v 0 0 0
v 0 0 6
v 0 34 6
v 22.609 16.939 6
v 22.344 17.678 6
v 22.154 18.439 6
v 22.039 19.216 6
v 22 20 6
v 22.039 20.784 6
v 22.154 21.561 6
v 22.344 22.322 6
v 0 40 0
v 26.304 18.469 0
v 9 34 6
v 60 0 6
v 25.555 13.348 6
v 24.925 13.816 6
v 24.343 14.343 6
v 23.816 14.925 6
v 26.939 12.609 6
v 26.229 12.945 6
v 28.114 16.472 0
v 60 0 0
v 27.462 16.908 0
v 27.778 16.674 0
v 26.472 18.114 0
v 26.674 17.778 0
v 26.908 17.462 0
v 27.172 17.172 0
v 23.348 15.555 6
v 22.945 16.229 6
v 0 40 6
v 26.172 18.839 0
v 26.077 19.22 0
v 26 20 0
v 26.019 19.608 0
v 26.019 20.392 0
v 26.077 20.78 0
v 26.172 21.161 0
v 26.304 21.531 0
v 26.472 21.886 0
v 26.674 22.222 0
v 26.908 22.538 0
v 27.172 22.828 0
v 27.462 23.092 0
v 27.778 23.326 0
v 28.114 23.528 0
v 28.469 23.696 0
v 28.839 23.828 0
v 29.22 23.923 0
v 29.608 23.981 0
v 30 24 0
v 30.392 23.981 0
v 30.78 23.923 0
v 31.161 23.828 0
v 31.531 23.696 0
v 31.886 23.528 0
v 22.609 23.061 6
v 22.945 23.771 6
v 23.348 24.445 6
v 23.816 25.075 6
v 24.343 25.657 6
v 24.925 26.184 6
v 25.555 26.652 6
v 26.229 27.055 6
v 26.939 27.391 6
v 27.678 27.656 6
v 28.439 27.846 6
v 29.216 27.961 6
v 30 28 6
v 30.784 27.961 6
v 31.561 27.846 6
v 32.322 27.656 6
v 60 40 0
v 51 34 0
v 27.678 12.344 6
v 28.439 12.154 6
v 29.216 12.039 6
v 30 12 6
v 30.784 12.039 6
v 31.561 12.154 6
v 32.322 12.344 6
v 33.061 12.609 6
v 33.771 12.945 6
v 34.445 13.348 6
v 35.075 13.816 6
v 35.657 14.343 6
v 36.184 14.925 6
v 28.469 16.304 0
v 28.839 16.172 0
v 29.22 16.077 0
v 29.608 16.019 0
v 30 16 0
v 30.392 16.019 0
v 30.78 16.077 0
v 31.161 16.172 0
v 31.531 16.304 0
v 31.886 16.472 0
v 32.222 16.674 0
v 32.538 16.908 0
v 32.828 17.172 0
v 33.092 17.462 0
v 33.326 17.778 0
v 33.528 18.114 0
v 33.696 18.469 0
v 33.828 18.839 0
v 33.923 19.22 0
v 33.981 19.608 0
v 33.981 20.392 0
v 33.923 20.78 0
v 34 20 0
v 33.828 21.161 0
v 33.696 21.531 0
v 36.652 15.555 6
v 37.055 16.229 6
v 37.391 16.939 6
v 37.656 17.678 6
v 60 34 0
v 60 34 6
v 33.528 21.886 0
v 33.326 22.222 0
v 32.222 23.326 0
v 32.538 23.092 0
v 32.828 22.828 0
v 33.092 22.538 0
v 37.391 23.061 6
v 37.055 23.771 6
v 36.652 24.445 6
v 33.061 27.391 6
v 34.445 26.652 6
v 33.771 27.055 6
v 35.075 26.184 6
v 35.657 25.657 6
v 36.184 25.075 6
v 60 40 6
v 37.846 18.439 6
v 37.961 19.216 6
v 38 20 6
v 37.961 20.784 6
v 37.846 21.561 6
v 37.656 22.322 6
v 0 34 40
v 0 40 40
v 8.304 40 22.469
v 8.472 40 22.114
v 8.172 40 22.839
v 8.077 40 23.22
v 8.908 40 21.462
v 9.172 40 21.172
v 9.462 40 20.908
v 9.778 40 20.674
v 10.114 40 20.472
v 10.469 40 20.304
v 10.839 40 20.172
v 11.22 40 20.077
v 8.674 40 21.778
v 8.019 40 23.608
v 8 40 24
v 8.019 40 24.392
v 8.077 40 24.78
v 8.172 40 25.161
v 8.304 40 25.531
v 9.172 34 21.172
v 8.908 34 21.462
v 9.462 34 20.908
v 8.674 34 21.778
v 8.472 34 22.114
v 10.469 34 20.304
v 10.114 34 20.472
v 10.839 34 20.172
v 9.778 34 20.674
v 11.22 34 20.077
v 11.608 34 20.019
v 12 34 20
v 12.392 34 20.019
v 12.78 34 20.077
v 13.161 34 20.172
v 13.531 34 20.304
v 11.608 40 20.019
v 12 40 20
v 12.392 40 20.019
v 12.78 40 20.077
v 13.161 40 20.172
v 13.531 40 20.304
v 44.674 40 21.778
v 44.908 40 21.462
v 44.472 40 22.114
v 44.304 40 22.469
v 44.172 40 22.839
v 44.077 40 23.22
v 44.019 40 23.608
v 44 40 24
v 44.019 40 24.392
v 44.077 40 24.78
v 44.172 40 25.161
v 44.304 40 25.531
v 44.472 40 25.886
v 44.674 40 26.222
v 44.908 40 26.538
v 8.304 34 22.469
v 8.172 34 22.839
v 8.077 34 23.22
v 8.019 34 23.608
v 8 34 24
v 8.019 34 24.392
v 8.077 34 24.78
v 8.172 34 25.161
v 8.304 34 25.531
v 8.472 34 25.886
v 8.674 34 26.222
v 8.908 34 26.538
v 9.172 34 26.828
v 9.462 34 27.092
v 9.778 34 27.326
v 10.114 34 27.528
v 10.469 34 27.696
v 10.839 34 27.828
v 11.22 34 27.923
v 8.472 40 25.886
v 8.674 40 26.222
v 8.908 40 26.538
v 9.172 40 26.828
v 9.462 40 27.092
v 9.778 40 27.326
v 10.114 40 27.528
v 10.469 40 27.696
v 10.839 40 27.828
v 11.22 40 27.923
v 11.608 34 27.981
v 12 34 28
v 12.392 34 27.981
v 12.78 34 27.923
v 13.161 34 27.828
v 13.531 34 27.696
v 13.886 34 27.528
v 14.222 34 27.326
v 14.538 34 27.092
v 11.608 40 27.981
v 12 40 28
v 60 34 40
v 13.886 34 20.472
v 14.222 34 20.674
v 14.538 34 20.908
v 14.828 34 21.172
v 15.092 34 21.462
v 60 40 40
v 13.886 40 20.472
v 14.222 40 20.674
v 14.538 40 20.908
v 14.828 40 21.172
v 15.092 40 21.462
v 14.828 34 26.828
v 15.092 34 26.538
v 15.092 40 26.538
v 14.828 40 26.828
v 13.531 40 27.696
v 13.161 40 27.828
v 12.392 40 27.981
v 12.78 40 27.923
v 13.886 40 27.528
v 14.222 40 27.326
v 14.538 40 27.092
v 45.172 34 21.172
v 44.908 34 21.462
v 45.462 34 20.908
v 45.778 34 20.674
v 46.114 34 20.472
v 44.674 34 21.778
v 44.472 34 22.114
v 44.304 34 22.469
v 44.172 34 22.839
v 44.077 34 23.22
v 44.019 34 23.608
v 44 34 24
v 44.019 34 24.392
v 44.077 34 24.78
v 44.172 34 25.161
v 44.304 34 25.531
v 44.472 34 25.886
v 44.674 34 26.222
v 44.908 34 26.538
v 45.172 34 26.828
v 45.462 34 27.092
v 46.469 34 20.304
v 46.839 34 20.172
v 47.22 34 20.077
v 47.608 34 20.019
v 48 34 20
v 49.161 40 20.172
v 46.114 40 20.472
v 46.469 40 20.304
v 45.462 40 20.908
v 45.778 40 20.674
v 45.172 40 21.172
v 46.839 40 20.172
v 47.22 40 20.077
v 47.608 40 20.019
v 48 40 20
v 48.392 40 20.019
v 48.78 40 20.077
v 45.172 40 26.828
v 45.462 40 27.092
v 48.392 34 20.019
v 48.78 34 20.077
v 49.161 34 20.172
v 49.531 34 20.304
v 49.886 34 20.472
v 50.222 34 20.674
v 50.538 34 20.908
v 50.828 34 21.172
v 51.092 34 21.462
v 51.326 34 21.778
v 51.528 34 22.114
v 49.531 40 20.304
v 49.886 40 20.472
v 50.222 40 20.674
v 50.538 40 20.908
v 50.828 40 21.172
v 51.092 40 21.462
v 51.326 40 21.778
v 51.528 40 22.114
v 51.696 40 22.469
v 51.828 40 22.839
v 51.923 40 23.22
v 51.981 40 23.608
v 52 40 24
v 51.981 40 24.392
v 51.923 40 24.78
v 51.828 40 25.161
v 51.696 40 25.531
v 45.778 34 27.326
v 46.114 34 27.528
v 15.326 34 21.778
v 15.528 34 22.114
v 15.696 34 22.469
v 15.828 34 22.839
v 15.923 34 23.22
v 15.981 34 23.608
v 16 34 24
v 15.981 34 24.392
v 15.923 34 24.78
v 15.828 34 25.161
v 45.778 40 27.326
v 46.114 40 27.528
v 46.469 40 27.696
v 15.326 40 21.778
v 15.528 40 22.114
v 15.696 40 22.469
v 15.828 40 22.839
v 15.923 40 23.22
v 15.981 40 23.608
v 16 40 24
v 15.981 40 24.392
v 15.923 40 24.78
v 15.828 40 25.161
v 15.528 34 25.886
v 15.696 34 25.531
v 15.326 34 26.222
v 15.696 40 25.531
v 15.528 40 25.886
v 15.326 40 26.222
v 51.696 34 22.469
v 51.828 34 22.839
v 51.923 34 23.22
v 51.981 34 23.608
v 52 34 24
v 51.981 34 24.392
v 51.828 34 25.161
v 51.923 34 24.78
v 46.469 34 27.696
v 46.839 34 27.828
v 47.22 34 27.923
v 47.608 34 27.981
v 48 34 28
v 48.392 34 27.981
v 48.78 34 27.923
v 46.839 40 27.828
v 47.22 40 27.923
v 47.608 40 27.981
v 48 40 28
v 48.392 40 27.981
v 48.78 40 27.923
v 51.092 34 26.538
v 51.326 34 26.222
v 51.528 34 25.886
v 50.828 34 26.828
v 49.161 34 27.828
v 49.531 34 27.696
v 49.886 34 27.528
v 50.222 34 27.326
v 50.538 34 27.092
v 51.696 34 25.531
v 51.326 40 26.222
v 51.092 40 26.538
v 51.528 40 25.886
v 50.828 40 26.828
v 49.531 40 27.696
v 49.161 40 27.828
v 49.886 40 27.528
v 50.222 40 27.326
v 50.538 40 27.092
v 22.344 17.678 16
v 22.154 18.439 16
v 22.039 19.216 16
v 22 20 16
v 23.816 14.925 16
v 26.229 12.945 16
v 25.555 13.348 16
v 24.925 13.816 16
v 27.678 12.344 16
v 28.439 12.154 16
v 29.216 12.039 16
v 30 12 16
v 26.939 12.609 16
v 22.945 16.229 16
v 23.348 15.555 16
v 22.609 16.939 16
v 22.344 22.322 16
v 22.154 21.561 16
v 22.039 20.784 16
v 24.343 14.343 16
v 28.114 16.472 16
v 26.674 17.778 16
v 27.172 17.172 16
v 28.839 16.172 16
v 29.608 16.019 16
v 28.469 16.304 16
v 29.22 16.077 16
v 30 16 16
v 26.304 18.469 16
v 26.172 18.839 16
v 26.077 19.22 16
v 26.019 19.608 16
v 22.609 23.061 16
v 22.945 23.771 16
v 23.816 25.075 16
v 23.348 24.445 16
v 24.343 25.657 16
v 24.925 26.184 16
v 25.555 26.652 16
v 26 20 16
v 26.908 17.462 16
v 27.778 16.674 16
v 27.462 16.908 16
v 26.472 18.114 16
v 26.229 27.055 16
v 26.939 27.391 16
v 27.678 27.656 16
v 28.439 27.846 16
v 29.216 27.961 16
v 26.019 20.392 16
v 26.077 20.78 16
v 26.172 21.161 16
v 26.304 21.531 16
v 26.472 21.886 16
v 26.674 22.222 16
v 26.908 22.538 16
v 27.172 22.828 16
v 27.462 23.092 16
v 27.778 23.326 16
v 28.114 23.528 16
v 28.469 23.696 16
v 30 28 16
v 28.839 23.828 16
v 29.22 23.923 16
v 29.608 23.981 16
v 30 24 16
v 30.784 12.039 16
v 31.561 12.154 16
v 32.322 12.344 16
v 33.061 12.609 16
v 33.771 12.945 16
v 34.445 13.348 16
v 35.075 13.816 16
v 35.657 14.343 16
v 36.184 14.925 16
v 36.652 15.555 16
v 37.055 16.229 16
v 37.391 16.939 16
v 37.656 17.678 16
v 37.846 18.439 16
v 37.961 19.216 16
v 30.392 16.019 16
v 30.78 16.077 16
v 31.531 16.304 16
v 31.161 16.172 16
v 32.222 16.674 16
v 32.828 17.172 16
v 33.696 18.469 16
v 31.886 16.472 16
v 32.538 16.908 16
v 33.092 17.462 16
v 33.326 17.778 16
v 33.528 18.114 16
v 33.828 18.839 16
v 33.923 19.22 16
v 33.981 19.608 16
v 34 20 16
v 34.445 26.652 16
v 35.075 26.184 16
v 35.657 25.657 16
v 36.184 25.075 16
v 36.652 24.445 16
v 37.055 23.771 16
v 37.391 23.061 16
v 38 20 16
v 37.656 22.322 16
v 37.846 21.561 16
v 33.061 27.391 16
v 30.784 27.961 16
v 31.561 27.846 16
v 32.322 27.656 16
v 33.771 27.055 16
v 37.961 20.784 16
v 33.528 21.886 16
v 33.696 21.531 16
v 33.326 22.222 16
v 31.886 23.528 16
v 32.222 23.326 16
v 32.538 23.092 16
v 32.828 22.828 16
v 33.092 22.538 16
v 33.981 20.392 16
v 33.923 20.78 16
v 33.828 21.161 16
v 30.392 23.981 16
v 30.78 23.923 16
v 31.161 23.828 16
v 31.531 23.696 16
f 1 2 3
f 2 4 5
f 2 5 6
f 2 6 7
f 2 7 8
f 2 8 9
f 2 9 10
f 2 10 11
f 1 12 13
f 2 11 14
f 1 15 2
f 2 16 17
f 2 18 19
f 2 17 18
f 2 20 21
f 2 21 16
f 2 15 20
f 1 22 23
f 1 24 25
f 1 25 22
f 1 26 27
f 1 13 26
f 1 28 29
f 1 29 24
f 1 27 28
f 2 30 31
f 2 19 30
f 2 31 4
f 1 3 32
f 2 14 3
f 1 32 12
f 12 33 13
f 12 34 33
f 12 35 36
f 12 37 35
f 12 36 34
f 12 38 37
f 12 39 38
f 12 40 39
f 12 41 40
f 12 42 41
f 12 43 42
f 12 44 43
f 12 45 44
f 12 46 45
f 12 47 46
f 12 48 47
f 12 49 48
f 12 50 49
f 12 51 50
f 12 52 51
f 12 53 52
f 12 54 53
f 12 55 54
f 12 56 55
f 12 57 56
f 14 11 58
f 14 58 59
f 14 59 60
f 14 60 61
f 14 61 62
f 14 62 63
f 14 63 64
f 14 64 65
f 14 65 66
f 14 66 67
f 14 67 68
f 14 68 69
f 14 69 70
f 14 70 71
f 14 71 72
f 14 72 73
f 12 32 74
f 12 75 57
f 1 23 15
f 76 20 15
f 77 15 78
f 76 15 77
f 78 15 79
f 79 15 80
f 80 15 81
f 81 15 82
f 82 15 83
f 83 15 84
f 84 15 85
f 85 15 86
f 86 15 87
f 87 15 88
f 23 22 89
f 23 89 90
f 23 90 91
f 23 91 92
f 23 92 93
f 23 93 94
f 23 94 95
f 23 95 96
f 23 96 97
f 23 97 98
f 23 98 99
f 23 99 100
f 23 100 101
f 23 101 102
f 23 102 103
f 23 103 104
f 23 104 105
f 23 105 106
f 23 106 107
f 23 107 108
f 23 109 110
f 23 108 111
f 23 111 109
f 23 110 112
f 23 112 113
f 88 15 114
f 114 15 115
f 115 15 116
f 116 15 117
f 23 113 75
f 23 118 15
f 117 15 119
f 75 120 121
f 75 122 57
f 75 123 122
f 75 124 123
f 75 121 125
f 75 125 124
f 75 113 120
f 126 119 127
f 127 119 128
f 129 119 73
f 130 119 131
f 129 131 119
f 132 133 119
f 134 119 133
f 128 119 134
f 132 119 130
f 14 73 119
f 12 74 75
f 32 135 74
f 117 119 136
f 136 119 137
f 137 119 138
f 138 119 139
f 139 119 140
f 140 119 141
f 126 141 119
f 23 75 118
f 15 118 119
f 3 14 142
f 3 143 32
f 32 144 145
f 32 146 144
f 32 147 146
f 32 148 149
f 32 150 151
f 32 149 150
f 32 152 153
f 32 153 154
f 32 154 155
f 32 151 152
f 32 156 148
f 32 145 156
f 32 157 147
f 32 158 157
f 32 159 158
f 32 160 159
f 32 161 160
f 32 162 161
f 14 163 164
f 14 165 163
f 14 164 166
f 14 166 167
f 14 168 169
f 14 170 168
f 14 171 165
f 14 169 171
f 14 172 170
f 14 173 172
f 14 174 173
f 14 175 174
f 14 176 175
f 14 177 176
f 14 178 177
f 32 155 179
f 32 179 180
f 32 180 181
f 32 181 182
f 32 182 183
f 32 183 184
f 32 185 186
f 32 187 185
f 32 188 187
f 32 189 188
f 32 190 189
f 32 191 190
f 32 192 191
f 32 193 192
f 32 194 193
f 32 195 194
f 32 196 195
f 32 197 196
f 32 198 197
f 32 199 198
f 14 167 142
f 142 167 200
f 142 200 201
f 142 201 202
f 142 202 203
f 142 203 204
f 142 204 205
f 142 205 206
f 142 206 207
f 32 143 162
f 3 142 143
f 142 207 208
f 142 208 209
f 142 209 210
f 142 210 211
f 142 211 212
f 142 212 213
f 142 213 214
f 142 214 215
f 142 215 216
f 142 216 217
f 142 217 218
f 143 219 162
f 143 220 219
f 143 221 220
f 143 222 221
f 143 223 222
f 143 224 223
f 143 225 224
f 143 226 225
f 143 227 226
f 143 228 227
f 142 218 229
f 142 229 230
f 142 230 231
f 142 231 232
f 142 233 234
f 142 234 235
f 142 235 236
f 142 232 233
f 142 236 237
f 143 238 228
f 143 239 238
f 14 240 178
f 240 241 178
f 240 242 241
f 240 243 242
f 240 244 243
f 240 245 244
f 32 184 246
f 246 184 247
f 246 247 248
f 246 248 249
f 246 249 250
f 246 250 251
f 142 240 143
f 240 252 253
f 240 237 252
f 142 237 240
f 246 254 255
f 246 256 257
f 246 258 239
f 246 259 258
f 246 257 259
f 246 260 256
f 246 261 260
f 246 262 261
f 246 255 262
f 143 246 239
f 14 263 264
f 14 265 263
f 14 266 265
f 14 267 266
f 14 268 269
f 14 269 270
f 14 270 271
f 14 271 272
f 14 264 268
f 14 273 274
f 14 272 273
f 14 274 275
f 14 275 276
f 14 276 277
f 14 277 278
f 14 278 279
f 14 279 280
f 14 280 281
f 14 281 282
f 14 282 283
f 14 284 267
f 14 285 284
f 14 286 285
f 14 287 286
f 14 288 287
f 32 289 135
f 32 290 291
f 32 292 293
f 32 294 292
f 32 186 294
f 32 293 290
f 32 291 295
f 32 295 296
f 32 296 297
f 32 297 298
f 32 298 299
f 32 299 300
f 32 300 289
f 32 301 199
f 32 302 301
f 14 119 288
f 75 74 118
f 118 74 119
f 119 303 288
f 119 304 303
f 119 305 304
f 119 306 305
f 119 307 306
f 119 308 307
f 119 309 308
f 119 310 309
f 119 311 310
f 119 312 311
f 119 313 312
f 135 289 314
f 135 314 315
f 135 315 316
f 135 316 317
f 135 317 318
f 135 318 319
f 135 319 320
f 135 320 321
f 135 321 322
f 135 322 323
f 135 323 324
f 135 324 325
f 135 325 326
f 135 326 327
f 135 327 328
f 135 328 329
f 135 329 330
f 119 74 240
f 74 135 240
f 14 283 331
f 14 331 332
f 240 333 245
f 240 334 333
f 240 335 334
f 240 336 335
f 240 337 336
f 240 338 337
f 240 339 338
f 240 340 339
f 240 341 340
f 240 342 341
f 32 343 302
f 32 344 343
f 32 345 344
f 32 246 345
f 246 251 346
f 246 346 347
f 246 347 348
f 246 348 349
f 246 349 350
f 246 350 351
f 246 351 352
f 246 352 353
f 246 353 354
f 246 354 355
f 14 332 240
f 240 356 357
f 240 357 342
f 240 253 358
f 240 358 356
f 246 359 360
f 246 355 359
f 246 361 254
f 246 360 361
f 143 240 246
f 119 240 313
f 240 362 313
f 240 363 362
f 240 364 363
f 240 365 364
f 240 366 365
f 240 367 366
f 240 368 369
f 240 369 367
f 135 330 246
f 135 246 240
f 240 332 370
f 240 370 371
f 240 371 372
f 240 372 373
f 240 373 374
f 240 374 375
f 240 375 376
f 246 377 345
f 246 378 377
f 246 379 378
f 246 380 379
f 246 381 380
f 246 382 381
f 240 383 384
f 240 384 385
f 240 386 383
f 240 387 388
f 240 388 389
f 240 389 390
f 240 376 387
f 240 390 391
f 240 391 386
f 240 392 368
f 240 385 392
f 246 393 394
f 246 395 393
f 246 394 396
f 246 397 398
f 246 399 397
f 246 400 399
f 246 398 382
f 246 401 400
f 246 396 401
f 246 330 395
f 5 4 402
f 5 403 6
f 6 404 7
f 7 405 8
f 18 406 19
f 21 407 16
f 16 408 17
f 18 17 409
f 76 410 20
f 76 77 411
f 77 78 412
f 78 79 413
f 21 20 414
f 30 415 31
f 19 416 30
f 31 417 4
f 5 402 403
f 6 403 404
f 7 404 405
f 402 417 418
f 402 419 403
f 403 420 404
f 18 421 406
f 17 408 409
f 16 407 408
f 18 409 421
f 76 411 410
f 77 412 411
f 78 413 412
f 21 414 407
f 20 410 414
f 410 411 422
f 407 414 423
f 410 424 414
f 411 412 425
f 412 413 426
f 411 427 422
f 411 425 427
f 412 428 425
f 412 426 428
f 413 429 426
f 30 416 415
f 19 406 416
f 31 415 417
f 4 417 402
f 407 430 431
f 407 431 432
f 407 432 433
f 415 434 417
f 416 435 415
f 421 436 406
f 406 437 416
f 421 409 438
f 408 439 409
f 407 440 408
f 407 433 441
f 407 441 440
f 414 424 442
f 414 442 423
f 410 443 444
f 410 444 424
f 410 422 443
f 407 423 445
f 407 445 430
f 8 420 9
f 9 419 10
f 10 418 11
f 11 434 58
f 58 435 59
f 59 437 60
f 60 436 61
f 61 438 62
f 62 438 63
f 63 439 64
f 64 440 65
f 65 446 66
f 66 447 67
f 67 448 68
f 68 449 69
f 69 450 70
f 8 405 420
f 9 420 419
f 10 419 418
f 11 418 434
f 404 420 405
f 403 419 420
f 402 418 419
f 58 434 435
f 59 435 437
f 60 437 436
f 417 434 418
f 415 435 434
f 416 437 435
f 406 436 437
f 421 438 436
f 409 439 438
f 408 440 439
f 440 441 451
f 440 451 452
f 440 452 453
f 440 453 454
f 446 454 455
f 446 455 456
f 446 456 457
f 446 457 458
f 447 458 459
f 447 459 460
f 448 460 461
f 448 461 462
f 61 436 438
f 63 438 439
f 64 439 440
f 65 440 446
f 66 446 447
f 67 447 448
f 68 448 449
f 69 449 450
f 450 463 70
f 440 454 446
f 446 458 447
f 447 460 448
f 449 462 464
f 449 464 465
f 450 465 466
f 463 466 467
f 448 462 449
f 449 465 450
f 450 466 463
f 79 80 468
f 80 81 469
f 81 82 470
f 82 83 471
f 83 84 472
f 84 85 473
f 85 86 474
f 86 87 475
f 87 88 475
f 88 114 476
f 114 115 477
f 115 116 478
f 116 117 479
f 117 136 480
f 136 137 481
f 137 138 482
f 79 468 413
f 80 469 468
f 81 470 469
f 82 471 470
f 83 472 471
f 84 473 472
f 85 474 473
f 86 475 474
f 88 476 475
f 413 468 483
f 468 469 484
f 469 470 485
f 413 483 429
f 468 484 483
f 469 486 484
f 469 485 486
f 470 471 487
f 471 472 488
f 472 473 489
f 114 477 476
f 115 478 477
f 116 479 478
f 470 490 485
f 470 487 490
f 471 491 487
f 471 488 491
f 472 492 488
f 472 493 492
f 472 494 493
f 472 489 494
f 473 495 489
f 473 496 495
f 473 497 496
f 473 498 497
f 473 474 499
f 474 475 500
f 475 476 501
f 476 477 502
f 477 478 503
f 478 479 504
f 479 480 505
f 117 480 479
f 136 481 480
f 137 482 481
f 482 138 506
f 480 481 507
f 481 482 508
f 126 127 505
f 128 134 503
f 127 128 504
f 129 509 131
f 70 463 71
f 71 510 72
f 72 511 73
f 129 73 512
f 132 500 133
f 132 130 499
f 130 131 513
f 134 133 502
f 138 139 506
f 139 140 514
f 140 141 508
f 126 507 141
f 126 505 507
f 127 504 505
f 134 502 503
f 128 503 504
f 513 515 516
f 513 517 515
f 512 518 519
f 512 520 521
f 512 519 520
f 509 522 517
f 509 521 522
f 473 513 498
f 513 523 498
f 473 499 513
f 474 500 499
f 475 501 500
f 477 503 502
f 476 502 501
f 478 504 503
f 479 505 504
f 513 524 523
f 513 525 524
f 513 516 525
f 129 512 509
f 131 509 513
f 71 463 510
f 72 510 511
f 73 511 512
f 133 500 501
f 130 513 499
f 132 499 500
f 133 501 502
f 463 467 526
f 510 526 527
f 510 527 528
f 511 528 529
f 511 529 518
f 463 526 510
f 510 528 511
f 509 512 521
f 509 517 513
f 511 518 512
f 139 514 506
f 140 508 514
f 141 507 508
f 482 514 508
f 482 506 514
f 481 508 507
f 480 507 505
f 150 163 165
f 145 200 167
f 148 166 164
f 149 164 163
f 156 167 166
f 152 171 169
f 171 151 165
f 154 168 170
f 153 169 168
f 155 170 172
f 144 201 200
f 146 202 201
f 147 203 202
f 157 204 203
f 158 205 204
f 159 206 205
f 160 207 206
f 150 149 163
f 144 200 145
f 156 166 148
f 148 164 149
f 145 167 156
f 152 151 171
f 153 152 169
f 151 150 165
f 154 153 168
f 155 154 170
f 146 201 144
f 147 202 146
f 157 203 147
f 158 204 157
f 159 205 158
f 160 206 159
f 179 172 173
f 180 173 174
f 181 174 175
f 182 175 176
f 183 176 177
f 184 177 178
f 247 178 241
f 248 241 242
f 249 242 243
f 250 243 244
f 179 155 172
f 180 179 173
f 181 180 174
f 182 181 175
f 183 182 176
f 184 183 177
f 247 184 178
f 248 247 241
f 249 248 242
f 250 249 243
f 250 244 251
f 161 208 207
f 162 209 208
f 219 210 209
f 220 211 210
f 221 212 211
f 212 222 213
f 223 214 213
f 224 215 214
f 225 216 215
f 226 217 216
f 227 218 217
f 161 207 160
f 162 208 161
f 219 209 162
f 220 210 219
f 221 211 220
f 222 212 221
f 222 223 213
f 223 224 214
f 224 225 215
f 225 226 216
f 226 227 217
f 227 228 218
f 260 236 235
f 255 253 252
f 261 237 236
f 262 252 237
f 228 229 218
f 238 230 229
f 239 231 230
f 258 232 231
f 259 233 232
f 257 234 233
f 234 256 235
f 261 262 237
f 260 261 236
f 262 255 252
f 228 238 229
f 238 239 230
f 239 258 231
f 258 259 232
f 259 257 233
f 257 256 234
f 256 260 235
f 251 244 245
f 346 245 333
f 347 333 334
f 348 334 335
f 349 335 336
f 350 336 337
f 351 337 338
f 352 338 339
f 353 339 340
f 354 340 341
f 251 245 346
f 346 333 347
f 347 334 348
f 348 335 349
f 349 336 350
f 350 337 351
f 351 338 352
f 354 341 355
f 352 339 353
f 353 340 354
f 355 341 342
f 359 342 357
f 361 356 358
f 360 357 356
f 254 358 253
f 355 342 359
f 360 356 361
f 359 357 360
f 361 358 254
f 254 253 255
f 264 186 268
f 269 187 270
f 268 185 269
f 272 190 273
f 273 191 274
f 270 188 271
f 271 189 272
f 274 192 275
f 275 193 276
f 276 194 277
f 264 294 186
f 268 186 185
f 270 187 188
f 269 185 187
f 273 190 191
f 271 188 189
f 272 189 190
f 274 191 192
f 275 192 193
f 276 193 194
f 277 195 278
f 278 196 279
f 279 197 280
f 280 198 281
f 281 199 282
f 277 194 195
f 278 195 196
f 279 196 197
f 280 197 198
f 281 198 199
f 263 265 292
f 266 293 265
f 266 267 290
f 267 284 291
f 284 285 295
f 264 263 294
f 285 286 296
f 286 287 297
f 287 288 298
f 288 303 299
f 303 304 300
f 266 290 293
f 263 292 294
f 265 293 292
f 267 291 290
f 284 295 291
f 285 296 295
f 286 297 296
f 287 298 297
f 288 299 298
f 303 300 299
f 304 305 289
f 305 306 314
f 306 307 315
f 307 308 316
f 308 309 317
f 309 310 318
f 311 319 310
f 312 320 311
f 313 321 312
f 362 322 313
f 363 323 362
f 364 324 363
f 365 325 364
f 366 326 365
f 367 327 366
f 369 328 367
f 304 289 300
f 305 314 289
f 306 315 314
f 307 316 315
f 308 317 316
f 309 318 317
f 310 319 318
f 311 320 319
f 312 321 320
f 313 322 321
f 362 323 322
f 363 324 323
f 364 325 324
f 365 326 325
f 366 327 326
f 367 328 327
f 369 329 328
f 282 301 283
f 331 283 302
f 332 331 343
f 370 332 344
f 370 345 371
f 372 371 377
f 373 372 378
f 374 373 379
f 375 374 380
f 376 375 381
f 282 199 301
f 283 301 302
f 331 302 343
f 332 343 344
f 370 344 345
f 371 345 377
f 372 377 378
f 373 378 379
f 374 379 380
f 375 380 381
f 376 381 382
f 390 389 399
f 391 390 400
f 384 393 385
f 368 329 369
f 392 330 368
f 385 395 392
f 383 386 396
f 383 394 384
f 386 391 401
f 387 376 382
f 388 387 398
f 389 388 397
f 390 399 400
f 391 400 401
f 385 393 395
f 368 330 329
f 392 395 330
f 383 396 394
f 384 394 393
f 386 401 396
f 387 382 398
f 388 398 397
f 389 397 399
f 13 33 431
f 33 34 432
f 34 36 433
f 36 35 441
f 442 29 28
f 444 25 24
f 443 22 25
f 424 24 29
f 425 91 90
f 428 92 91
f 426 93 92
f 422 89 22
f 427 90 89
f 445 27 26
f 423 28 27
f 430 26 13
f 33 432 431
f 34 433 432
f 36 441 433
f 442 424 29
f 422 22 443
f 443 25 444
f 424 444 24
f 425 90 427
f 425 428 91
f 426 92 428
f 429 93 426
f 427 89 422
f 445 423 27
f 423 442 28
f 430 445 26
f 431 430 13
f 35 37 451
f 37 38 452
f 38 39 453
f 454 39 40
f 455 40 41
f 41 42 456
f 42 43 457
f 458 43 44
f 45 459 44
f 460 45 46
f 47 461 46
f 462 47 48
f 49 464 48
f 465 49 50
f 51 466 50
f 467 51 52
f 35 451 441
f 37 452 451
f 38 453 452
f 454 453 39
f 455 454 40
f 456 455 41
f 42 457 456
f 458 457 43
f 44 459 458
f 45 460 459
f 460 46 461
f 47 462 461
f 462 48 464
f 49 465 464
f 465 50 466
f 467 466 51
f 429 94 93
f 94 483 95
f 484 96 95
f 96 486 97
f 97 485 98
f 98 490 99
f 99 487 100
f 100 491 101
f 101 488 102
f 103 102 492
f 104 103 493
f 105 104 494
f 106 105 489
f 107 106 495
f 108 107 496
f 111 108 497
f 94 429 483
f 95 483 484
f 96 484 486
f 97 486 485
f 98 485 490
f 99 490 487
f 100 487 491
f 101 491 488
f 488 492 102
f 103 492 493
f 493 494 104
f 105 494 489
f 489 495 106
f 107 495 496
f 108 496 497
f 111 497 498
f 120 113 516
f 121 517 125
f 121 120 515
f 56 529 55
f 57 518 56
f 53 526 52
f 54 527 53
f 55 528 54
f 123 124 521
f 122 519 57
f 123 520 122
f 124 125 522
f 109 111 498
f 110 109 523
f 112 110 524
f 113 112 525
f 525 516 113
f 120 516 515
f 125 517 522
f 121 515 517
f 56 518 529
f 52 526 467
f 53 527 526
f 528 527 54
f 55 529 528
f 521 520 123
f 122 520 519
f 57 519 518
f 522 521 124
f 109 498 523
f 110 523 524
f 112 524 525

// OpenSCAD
// Supporto parametrico: modello di prova per il viewer.

larghezza = 60;   // [20:1:120]
profondita = 40;  // [20:1:100]
spessore = 6;     // [2:0.5:12]
diametro_foro = 8; // [3:0.5:15]
$fn = 64;

difference() {
    union() {
        cube([larghezza, profondita, spessore]);
        translate([0, profondita - spessore, 0])
            cube([larghezza, spessore, profondita]);
        translate([larghezza / 2, profondita / 2, spessore])
            cylinder(h = 10, d = diametro_foro * 2);
    }
    translate([larghezza / 2, profondita / 2, -1])
        cylinder(h = spessore + 12, d = diametro_foro);
    for (x = [larghezza * 0.2, larghezza * 0.8])
        translate([x, profondita + 1, profondita * 0.6])
            rotate([90, 0, 0])
                cylinder(h = spessore + 2, d = diametro_foro);
}
